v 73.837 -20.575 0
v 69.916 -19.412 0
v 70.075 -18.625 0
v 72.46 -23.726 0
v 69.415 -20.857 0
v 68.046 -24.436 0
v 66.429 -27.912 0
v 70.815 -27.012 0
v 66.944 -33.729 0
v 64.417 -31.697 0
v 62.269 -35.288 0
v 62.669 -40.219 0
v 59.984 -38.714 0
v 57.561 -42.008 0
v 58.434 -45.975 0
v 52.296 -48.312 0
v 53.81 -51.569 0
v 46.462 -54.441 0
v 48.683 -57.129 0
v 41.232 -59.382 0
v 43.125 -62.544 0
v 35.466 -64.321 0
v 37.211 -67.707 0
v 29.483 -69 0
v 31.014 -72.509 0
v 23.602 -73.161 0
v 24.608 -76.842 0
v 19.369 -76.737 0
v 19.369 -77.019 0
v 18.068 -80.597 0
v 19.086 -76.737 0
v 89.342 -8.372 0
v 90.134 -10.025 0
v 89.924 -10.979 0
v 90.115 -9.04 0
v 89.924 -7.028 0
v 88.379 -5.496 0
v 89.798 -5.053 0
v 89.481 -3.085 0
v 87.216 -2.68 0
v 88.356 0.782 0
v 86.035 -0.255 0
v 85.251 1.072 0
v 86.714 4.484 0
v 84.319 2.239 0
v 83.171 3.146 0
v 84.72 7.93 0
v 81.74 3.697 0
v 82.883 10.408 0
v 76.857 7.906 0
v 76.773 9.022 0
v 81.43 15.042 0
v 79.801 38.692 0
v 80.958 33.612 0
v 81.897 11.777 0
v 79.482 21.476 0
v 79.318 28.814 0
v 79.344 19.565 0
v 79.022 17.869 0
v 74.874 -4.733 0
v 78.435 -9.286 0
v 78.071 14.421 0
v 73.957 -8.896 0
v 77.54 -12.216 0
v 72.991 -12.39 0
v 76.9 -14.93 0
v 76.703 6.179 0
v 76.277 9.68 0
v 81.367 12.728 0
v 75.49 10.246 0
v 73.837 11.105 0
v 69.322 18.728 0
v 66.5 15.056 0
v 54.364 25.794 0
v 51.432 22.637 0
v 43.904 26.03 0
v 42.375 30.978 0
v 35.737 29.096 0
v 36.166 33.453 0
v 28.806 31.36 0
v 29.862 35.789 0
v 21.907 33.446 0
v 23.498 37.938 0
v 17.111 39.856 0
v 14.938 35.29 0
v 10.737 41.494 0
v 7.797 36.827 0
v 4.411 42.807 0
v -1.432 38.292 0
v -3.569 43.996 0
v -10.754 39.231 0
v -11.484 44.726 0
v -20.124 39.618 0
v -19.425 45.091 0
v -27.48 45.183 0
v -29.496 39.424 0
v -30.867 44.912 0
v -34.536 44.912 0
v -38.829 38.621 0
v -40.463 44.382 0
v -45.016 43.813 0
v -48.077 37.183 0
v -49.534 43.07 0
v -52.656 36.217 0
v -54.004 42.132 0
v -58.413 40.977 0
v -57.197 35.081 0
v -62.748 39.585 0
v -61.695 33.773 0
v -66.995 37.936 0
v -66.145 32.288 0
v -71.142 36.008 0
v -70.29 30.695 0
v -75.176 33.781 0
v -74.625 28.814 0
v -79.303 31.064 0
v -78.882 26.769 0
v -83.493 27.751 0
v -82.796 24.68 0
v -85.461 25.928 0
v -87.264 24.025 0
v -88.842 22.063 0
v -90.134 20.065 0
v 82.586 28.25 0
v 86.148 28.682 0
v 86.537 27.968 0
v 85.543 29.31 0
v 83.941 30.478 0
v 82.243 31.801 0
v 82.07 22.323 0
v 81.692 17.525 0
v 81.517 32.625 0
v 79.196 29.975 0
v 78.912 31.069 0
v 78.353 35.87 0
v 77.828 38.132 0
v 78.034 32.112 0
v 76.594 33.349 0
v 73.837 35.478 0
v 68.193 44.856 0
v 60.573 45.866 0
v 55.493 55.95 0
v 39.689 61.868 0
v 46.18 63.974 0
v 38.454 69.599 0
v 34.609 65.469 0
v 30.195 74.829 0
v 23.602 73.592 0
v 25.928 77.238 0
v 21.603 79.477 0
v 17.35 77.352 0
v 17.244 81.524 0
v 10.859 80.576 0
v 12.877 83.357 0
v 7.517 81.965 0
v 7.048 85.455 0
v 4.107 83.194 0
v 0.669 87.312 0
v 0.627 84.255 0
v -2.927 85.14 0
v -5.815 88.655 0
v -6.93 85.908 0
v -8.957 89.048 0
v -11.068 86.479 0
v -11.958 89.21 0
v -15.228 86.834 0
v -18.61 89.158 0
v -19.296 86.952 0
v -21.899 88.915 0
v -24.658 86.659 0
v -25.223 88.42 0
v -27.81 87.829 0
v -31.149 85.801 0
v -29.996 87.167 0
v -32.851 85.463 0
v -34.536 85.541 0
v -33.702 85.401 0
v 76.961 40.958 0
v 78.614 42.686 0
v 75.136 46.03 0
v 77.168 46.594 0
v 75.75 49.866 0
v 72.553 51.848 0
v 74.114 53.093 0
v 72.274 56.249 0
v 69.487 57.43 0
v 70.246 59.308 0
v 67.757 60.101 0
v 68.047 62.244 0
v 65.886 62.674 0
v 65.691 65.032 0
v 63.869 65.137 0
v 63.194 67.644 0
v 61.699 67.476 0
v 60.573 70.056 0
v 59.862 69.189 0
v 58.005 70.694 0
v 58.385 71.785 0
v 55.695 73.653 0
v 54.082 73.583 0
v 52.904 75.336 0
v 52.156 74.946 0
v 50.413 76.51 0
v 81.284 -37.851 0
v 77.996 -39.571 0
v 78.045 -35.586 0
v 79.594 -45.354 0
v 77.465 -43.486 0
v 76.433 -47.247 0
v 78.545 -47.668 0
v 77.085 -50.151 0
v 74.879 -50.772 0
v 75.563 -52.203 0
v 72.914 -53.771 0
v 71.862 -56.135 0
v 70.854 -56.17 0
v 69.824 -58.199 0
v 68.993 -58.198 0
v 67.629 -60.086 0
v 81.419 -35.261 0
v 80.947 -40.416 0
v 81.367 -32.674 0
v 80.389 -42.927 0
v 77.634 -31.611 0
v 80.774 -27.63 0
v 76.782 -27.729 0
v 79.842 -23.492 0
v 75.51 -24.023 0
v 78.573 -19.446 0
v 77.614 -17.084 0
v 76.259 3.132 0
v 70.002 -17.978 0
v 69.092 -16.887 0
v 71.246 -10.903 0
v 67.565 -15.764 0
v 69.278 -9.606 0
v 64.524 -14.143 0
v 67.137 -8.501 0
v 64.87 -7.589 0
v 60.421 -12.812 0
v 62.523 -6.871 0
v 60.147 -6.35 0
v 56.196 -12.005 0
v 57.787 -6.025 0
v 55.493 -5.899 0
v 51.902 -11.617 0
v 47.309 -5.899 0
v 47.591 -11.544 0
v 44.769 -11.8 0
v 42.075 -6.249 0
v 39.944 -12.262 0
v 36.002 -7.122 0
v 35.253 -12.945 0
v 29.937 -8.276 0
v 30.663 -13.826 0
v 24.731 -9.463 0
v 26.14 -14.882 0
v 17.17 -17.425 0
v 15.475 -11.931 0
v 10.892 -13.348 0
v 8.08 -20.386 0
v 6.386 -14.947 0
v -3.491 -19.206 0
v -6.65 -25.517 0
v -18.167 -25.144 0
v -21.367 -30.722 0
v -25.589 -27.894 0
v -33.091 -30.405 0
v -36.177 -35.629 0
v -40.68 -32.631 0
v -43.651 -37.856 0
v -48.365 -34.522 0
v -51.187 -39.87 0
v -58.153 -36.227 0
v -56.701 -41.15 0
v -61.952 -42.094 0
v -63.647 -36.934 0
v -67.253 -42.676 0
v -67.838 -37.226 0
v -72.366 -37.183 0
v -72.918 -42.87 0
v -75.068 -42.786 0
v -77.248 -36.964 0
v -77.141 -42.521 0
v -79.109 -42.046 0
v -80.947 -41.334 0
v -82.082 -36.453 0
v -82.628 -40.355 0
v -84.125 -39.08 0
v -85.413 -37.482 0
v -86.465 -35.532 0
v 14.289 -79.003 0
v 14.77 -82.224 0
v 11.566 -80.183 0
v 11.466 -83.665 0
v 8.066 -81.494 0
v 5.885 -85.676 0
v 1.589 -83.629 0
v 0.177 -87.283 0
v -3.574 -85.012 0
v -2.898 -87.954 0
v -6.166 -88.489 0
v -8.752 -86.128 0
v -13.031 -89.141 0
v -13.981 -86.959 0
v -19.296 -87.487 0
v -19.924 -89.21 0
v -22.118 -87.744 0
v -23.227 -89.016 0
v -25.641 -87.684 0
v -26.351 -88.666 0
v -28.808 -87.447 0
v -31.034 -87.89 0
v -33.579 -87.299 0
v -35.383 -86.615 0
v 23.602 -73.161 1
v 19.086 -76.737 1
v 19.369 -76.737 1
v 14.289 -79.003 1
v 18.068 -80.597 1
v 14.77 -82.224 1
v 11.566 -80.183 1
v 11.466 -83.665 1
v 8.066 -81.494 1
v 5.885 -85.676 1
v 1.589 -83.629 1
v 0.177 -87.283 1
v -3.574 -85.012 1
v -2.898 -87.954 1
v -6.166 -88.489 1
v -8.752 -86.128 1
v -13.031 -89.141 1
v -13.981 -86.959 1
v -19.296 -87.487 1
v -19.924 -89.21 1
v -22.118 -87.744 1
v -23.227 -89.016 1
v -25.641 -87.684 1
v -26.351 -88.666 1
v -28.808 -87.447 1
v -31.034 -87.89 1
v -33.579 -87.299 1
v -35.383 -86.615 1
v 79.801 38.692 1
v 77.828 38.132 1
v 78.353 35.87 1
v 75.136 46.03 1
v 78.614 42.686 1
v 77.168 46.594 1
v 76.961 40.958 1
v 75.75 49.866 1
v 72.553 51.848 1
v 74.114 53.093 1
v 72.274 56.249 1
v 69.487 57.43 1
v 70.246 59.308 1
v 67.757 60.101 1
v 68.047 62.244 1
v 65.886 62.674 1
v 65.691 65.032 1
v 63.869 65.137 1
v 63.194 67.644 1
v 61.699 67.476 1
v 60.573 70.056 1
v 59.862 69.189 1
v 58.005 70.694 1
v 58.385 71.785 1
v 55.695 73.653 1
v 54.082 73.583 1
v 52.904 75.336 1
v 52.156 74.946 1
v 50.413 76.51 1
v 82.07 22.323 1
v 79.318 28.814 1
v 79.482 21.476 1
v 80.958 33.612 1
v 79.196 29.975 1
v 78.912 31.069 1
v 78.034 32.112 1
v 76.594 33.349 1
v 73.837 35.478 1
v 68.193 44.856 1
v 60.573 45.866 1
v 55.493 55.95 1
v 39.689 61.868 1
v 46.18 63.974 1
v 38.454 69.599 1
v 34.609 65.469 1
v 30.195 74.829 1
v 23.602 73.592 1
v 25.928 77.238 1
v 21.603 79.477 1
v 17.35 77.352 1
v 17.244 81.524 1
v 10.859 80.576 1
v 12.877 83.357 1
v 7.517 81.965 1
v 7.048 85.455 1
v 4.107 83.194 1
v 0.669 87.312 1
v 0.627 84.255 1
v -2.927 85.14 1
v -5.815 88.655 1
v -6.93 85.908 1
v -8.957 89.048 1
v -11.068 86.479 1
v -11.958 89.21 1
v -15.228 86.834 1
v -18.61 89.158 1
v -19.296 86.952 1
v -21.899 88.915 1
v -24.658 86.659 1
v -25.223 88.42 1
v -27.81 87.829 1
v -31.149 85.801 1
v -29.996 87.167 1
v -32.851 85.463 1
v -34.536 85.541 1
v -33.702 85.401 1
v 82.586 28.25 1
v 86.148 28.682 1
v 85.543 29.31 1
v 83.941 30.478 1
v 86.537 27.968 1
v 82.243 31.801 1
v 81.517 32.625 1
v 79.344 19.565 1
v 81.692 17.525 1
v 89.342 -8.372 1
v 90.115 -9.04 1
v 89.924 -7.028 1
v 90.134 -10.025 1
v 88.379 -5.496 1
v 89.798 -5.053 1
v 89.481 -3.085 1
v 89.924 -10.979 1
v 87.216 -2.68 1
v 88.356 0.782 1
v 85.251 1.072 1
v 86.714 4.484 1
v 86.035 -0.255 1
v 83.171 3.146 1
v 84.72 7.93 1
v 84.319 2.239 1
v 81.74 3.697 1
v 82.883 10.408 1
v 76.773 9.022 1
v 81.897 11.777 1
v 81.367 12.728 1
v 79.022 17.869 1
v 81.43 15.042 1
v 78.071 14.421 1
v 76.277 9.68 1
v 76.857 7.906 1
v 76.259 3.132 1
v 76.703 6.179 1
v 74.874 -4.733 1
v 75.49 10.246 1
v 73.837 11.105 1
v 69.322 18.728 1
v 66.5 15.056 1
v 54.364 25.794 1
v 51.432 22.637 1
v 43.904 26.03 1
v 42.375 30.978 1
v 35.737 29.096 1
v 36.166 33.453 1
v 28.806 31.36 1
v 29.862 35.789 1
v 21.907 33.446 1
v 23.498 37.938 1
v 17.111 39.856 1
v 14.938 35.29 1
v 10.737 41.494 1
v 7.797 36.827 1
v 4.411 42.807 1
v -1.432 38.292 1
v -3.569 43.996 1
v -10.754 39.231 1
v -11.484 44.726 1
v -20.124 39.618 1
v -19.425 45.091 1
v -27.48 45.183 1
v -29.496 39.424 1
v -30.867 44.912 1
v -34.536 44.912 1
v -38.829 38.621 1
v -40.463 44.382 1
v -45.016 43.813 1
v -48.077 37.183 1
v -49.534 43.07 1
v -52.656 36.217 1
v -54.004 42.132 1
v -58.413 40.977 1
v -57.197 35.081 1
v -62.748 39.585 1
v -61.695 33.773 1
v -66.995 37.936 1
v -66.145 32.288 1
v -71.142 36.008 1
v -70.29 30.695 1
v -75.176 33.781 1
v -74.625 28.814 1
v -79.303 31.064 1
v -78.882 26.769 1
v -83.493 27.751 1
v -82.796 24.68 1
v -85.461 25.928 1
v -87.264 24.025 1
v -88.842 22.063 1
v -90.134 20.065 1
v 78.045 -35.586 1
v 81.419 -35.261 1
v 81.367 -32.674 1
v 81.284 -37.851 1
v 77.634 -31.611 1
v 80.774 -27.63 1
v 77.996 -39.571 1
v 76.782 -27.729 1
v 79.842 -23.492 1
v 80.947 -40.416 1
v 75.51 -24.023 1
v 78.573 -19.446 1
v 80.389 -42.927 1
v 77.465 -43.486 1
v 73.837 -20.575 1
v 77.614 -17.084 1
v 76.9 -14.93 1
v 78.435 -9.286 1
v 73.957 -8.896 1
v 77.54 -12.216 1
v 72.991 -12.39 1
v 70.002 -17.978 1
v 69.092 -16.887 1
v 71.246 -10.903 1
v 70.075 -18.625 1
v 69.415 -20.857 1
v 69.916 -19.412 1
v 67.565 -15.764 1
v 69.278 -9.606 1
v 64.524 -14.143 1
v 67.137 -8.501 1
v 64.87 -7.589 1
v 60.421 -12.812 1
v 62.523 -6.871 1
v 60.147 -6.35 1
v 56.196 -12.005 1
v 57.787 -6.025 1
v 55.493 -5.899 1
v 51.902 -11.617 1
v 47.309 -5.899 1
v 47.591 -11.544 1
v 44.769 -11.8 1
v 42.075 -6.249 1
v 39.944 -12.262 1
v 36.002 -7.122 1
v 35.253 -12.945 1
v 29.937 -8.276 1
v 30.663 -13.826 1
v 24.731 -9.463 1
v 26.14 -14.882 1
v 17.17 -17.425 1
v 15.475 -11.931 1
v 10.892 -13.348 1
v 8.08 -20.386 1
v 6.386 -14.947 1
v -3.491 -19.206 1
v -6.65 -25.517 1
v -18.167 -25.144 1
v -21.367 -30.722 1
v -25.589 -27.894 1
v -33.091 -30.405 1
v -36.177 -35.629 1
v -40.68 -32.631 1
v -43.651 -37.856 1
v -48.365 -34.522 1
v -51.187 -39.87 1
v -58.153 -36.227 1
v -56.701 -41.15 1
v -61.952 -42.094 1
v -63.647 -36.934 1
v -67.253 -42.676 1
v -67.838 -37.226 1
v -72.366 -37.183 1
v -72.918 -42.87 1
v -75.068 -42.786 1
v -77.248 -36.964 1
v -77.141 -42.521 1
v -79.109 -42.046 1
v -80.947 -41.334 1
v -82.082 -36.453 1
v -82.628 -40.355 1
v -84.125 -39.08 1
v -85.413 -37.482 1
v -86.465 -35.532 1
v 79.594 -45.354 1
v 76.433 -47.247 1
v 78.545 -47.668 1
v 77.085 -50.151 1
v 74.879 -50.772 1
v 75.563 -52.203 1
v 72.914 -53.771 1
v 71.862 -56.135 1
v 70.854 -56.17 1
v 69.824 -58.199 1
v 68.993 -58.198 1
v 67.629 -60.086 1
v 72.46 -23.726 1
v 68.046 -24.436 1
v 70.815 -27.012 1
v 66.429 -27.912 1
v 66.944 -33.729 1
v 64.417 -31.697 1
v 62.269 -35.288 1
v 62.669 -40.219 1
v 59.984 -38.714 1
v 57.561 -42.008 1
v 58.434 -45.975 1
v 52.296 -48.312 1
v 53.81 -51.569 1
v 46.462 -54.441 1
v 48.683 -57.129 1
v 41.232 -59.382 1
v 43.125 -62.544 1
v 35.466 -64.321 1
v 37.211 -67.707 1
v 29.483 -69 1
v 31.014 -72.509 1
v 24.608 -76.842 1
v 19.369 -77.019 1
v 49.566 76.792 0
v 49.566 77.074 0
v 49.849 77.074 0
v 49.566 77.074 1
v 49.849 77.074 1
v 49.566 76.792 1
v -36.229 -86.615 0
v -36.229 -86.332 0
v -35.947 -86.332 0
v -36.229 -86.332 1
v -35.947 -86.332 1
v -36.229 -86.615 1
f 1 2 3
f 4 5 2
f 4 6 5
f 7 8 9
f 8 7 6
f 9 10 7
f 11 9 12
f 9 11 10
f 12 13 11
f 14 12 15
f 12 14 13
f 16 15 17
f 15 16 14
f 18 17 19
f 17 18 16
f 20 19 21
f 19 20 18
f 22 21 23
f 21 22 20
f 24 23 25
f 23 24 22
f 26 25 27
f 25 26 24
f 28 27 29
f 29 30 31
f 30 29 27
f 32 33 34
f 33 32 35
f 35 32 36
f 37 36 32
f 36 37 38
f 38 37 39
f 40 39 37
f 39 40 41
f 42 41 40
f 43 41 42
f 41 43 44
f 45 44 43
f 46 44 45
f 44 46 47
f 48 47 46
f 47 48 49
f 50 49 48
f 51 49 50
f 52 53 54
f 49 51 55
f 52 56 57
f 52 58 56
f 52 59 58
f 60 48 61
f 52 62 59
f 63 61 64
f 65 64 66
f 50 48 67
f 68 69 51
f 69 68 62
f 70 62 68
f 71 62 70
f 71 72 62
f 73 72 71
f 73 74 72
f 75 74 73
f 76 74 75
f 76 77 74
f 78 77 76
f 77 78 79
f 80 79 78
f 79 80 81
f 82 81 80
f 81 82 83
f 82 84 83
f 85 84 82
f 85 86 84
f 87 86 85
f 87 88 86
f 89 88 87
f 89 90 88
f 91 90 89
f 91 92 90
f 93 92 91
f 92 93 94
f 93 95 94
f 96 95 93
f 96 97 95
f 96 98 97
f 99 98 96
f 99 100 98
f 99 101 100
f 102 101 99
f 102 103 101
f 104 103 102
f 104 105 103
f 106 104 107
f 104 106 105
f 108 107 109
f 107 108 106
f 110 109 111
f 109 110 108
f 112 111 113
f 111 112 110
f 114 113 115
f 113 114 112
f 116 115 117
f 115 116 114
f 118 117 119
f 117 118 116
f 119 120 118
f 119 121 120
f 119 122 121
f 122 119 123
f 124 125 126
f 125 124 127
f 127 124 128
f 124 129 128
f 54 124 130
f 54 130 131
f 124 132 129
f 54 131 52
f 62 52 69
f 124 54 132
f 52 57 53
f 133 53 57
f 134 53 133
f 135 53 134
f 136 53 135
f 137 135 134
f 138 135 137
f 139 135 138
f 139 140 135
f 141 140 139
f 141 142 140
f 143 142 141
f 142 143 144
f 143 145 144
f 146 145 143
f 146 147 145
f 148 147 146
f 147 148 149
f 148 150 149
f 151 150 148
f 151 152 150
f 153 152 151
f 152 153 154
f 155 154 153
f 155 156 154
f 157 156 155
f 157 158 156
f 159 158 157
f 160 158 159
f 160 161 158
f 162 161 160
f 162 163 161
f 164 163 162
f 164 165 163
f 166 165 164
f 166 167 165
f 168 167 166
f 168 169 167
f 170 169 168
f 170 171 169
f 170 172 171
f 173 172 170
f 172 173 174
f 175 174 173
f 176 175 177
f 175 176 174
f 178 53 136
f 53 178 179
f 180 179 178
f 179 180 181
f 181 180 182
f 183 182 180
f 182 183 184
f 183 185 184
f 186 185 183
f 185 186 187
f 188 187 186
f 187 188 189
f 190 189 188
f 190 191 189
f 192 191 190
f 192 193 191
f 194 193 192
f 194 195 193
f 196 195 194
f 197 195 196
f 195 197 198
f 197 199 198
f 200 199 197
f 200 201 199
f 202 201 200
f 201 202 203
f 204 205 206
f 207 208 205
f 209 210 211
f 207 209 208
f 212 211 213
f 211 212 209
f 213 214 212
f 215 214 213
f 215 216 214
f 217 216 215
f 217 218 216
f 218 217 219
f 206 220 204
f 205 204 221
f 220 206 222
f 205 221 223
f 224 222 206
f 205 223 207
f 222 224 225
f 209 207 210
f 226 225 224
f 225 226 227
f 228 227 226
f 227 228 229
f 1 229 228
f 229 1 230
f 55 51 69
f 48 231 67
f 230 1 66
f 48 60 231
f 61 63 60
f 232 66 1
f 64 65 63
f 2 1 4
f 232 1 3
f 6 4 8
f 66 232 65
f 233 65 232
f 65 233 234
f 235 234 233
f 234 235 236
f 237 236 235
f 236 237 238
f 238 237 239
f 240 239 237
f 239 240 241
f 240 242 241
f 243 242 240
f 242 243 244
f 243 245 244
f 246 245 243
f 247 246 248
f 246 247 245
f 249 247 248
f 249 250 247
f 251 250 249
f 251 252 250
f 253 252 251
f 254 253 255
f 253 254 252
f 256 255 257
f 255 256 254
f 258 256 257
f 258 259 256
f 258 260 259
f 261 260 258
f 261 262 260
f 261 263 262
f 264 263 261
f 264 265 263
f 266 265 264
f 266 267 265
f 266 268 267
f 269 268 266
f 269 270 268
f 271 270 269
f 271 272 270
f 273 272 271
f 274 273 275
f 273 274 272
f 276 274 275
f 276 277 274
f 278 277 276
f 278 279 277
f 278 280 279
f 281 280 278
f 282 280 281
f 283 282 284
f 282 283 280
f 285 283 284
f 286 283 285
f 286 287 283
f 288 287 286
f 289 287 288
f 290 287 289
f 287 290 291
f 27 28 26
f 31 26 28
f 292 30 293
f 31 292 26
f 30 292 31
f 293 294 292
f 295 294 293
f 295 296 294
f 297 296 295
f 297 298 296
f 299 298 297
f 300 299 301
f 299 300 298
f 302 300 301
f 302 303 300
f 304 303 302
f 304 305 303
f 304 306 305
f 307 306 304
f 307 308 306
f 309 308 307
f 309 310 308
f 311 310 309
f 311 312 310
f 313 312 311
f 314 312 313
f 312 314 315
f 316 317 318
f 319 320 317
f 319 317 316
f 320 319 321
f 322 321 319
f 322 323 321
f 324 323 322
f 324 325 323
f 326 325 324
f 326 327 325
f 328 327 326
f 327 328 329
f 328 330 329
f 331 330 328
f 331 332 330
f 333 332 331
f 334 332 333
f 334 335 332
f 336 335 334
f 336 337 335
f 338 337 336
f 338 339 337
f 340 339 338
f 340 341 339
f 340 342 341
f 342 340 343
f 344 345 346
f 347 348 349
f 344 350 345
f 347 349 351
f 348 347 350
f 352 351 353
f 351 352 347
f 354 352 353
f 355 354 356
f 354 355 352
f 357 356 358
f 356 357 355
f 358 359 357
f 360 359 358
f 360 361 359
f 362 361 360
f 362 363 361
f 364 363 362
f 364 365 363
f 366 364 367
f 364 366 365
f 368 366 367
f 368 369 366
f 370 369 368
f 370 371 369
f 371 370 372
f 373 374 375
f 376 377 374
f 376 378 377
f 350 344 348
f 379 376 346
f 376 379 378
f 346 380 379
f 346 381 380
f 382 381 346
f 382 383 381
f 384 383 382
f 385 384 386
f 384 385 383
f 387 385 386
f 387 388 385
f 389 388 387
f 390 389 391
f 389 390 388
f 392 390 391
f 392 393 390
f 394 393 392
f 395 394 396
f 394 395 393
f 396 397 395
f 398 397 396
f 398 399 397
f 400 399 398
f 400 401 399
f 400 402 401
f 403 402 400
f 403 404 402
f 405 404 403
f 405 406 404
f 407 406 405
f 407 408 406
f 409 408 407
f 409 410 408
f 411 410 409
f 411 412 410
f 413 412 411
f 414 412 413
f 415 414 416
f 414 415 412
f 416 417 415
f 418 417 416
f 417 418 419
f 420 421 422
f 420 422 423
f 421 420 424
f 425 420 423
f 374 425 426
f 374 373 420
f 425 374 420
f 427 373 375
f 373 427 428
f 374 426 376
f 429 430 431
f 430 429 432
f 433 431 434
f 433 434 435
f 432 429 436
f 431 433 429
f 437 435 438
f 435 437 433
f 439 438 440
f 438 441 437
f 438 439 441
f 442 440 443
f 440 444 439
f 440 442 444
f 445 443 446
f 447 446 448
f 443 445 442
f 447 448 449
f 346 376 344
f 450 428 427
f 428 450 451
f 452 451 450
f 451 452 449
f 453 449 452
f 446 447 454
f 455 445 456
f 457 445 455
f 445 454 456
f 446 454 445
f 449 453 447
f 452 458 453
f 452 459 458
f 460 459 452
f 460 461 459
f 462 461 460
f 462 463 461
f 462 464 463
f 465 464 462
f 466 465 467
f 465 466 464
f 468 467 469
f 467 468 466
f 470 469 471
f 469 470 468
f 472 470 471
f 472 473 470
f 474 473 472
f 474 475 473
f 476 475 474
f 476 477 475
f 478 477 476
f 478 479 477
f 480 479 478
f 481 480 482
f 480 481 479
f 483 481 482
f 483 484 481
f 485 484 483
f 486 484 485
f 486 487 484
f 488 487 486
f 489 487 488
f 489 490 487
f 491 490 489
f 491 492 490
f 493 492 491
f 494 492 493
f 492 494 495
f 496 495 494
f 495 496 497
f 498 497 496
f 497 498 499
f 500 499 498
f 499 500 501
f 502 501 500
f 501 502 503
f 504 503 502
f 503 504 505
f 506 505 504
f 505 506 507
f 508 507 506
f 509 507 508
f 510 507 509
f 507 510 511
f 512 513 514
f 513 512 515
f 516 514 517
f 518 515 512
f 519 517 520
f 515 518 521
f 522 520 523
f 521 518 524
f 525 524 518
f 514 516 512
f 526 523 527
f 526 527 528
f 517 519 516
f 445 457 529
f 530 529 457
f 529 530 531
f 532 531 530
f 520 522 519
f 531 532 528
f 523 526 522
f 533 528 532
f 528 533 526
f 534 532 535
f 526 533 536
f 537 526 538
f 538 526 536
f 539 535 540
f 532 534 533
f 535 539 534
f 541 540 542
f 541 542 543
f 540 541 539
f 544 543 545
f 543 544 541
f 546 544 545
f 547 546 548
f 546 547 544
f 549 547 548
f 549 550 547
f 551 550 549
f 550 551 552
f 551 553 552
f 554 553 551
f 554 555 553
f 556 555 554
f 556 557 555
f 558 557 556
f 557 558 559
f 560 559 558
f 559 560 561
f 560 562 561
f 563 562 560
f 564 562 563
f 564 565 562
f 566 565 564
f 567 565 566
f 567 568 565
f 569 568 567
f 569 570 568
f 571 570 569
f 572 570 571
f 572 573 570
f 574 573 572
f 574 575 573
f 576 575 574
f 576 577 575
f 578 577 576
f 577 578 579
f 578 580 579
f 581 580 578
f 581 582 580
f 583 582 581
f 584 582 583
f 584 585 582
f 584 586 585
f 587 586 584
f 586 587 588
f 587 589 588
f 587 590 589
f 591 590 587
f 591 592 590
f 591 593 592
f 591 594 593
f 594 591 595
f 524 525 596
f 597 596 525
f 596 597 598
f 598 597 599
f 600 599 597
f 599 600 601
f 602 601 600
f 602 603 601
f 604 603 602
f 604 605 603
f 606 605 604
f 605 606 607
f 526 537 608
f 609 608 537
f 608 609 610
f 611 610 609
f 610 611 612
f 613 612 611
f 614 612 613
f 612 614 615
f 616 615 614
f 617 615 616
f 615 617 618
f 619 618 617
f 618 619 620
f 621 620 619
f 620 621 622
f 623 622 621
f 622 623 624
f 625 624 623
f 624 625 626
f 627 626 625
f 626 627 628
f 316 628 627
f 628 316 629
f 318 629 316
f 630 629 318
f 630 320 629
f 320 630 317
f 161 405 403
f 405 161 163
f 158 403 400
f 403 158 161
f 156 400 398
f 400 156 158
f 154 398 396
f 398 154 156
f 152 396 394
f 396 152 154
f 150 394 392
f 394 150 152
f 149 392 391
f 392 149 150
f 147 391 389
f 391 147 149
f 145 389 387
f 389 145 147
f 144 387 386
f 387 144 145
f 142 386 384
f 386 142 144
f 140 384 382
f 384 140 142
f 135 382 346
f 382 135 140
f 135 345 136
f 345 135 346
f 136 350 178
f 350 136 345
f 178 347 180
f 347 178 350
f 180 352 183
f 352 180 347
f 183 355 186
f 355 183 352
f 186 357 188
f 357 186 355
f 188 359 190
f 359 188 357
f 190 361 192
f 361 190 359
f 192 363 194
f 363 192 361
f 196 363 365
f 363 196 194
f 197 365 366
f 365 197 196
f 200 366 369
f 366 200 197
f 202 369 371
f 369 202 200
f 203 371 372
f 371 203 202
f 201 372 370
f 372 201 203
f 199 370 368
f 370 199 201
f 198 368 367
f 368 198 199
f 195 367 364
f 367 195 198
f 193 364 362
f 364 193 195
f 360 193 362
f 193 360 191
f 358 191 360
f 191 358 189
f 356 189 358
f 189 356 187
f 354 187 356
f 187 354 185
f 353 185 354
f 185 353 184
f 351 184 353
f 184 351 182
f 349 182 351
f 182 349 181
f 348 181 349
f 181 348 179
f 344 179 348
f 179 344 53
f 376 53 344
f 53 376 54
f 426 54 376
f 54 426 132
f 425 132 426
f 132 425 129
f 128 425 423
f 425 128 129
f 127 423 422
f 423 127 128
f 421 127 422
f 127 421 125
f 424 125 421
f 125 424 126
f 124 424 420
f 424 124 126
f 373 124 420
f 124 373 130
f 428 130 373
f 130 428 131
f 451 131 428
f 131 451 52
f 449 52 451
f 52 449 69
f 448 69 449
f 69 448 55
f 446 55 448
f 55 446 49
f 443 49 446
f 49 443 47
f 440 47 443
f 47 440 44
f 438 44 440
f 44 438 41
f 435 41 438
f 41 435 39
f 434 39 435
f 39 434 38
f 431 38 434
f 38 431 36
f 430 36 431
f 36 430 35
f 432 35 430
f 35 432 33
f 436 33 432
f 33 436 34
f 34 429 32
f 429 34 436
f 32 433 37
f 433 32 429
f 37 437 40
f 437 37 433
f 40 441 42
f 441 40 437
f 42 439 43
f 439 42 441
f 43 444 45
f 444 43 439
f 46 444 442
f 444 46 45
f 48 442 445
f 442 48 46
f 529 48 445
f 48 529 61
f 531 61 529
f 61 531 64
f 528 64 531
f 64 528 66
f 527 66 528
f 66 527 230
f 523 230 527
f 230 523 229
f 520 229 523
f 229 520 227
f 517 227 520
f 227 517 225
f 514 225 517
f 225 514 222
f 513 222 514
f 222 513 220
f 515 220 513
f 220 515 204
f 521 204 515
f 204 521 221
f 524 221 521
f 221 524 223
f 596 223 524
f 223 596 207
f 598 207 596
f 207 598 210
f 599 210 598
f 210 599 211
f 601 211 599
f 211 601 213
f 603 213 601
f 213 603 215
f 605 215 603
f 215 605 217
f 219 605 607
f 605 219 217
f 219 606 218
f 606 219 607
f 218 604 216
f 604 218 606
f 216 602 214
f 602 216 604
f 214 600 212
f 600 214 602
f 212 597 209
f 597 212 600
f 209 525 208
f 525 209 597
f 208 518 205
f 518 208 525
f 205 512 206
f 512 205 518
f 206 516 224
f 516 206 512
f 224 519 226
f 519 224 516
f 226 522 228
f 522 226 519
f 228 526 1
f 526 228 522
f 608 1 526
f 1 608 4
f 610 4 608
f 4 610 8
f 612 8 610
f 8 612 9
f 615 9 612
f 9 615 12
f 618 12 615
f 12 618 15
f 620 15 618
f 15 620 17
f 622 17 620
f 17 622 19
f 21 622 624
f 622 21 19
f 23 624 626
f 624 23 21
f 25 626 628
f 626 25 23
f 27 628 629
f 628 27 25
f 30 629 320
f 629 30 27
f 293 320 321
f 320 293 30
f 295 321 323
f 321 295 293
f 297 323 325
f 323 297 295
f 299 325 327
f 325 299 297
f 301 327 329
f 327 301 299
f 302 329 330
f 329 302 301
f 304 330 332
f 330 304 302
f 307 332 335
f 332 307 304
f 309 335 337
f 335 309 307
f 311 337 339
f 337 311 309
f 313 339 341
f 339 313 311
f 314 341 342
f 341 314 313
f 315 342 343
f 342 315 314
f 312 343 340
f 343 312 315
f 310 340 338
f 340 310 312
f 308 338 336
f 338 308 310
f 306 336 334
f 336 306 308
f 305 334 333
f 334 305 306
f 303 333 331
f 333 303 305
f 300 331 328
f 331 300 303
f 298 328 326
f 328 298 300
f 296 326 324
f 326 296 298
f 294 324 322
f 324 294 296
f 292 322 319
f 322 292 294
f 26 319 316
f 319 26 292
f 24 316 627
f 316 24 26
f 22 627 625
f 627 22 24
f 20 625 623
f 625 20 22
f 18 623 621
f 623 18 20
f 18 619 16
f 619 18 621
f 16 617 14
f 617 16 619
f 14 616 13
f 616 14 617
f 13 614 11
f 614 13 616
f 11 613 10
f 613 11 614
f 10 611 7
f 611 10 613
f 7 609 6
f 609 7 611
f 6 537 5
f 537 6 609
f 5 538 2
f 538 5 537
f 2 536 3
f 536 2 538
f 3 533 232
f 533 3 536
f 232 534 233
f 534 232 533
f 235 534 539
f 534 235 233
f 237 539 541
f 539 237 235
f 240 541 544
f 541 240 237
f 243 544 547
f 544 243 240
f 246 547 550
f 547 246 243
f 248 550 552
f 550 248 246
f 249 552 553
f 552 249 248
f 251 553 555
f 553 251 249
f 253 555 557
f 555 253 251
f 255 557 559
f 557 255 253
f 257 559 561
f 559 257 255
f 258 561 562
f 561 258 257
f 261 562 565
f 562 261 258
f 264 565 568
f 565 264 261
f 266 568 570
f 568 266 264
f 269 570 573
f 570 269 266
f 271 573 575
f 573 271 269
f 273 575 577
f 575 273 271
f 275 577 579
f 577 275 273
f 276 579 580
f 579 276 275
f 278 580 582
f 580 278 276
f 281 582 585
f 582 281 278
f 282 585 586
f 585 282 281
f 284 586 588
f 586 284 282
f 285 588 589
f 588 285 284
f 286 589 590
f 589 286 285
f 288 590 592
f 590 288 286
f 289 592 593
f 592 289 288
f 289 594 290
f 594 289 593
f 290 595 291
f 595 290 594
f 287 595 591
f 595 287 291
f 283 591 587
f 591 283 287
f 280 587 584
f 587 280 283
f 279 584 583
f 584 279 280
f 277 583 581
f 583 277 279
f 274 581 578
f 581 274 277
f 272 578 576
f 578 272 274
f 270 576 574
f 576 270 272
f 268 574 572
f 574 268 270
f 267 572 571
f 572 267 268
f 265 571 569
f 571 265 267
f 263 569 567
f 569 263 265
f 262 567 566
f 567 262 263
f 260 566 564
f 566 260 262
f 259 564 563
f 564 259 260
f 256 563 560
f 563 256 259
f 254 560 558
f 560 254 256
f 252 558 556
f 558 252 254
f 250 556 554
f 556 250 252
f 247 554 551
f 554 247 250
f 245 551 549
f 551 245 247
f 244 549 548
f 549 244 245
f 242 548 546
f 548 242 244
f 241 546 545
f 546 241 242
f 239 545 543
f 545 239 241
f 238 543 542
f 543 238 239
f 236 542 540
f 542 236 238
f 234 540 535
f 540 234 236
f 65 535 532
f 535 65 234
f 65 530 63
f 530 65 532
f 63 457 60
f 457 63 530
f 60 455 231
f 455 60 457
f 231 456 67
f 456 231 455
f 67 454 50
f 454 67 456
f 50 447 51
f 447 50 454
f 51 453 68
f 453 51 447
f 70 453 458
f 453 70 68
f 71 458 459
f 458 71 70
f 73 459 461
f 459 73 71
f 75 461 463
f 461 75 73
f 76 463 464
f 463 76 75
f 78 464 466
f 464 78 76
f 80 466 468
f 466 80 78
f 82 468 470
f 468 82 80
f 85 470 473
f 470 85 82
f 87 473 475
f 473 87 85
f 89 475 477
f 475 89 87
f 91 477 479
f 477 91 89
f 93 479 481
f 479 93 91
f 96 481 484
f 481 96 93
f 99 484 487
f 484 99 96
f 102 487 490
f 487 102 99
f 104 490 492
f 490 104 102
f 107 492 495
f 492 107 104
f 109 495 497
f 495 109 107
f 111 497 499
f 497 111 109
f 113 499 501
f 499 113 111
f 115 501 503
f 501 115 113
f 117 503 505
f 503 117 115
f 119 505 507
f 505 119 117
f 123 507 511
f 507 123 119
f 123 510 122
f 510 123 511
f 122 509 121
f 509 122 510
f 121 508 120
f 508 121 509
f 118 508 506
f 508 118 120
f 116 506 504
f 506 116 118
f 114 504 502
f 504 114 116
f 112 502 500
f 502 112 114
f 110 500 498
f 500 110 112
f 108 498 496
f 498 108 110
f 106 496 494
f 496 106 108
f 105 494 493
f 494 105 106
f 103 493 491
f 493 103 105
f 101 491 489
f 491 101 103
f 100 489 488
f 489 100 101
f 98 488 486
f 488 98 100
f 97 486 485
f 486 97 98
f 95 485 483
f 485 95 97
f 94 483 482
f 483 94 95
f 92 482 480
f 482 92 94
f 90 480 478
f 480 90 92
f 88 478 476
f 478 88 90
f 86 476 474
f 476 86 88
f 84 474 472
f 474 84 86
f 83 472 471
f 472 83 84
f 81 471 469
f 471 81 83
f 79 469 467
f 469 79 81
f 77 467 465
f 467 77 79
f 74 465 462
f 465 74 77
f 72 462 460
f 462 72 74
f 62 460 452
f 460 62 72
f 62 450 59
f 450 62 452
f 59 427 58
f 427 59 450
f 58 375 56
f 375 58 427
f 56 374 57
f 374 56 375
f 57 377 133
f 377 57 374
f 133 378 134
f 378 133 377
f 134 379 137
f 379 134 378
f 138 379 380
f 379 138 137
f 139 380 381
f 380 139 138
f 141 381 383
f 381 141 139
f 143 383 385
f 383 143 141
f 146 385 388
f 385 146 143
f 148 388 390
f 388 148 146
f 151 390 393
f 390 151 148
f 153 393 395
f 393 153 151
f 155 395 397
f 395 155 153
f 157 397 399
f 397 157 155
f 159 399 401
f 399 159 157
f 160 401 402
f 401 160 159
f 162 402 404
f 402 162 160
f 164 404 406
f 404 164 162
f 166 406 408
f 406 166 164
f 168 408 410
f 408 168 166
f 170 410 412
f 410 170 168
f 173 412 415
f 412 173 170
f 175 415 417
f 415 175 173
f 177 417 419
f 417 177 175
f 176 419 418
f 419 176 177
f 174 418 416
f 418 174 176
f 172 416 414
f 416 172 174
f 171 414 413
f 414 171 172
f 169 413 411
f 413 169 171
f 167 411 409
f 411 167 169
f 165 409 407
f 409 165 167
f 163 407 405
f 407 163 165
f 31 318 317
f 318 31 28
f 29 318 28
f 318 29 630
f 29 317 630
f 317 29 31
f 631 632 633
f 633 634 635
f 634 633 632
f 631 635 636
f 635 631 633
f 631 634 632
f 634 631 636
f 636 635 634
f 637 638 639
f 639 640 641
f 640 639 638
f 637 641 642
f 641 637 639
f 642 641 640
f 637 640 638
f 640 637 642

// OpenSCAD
// Module names are of the form poly_<inkscape-path-id>().  As a result,
// you can associate a polygon in this OpenSCAD program with the corresponding
// SVG element in the Inkscape document by looking for the XML element with
// the attribute id="inkscape-path-id".

// fudge value is used to ensure that subtracted solids are a tad taller
// in the z dimension than the polygon being subtracted from.  This helps
// keep the resulting .stl file manifold.
fudge = 0.1;

module poly_Selection(h)
{
  scale([25.4/90, -25.4/90, 1]) union()
  {
    difference()
    {
       linear_extrude(height=h)
         polygon([[-89.371250,-313.297969],[-77.593594,-315.051719],[-65.942500,-315.912969],[-42.371250,-316.097969],[-31.736289,-315.524258],[-20.602813,-314.131406],[2.371250,-309.372969],[24.974063,-302.792031],[45.628750,-295.357969],[61.101445,-288.866406],[76.545312,-281.611719],[91.871523,-273.676406],[106.991250,-265.142969],[136.255937,-246.611719],[163.628750,-226.677969],[196.628750,-198.247969],[241.628750,-158.937969],[277.628750,-127.097969],[275.770156,-135.113594],[272.697500,-145.127969],[266.228750,-163.097969],[257.078281,-183.712656],[246.215000,-203.492969],[240.083926,-212.955977],[233.456094,-222.073281],[226.308652,-230.799180],[218.618750,-239.087969],[212.109375,-245.156563],[205.528750,-250.489219],[191.628750,-260.727969],[184.806250,-265.556719],[178.628750,-271.097969],[187.455781,-266.939531],[197.345000,-260.975469],[206.876094,-254.355156],[214.628750,-248.227969],[223.917148,-239.684473],[232.762812,-230.428125],[241.110195,-220.551387],[248.903750,-210.146719],[256.087930,-199.306582],[262.607188,-188.123437],[268.405977,-176.689746],[273.428750,-165.097969],[278.555000,-151.247969],[282.758750,-137.097969],[286.858750,-119.097969],[288.839043,-115.600059],[291.411719,-112.680938],[297.430000,-107.991719],[303.105156,-103.855625],[305.248926,-101.627910],[306.628750,-99.097969],[292.628750,-100.097969],[290.798750,-79.097969],[289.458750,-62.097969],[288.531250,-53.297969],[288.308750,-45.097969],[290.187500,-41.728750],[293.678750,-36.879219],[300.188750,-28.097969],[307.253594,-15.889062],[313.072500,-2.771719],[317.059531,10.932500],[318.182988,17.904199],[318.628750,24.902031],[319.303750,32.033281],[319.371250,35.520625],[318.628750,38.902031],[316.564219,29.665469],[313.152500,19.474531],[309.033906,9.497344],[304.848750,0.902031],[302.071250,-3.798438],[298.768750,-7.931719],[294.701250,-11.148125],[289.628750,-13.097969],[277.918750,32.902031],[274.748750,43.284531],[272.478750,52.902031],[275.008750,60.534531],[278.408750,68.902031],[282.905000,83.240781],[286.208750,97.902031],[288.308594,115.775312],[288.491270,124.939824],[288.015000,134.118281],[286.819199,143.207207],[284.843281,152.103125],[282.026660,160.702559],[278.308750,168.902031],[273.135000,177.700000],[267.743750,184.970781],[254.628750,198.902031],[247.406250,206.217031],[239.628750,212.902031],[244.464062,206.212969],[251.056250,199.027031],[258.357187,190.528594],[265.318750,179.902031],[270.824453,167.410098],[274.481875,154.083438],[276.362734,140.213262],[276.538750,126.090781],[275.081641,112.007207],[272.063125,98.253750],[267.554922,85.121621],[261.628750,72.902031],[256.747109,84.069590],[250.918125,95.710000],[237.203750,119.510781],[222.056875,142.507187],[207.048750,162.902031],[190.666914,182.726094],[172.498437,202.424531],[152.805117,221.612969],[131.848750,239.907031],[109.891133,256.922344],[87.194062,272.274531],[64.019336,285.579219],[52.334663,291.343633],[40.628750,296.452031],[20.853750,303.578281],[0.628750,309.272031],[-10.269355,311.647383],[-21.847969,313.544844],[-46.172500,315.854531],[-70.596406,316.097969],[-82.299238,315.412617],[-93.371250,314.172031],[-109.963750,311.422031],[-118.981875,309.326094],[-125.371250,306.902031],[-102.073750,309.850781],[-90.853438,310.691875],[-78.371250,310.902031],[-68.371250,309.992031],[-49.538438,308.121875],[-31.011250,305.178281],[-12.664063,301.224063],[5.628750,296.322031],[28.578750,288.757031],[40.981875,284.112969],[50.628750,279.932031],[83.628750,259.232031],[104.466562,244.487500],[125.666250,227.908281],[146.097187,210.408438],[164.628750,192.902031],[185.299375,171.184688],[203.956250,148.845781],[212.541250,137.177520],[220.636875,125.035000],[228.247812,112.311934],[235.378750,98.902031],[241.107500,86.585781],[245.958750,73.902031],[247.733750,68.783281],[248.295937,65.994687],[248.038750,63.702031],[244.816094,59.834844],[239.402500,55.857031],[228.628750,50.112031],[214.091406,45.396406],[199.120000,42.537031],[183.902969,41.162656],[168.628750,40.902031],[158.628750,41.812031],[141.533828,43.447266],[124.911875,45.867656],[108.647109,48.990234],[92.623750,52.732031],[60.838125,61.741406],[28.628750,72.232031],[-23.564687,90.415000],[-75.711250,108.855781],[-128.187813,126.244688],[-154.667617,134.135410],[-181.371250,141.272031],[-200.910469,145.807344],[-219.515000,149.152031],[-238.297656,151.214219],[-258.371250,151.902031],[-265.989727,151.603926],[-273.332813,150.664688],[-280.306992,148.983184],[-286.818750,146.458281],[-292.774570,142.988848],[-298.080938,138.473750],[-302.644336,132.811855],[-306.371250,125.902031],[-290.840156,129.164062],[-273.712500,130.975781],[-256.414219,131.750625],[-240.371250,131.902031],[-225.521719,130.869219],[-206.055000,128.364531],[-171.371250,122.322031],[-144.143594,115.620938],[-117.252500,107.735781],[-90.670781,98.836250],[-64.371250,89.092031],[-12.371250,68.052031],[22.628750,52.962031],[38.594219,47.297812],[54.832500,42.275781],[87.628750,33.532031],[106.075781,29.322656],[127.565000,25.237031],[149.086094,22.141406],[167.628750,20.902031],[196.628750,20.902031],[204.758145,21.348906],[213.118281,22.498906],[221.539590,24.347344],[229.852500,26.889531],[237.887441,30.120781],[245.474844,34.036406],[252.445137,38.631719],[258.628750,43.902031],[262.053906,31.519844],[265.300000,16.769531],[270.208750,-11.097969],[271.782500,-21.892969],[272.327969,-28.012344],[272.028750,-31.967969],[270.272969,-34.299531],[267.485000,-36.302969],[261.628750,-39.347969],[235.628750,-53.347969],[182.238750,-80.210469],[155.565313,-92.233594],[126.628750,-103.097969],[102.070000,-111.118281],[77.623750,-118.510469],[52.930000,-125.043906],[27.628750,-130.487969],[-5.075723,-135.679492],[-38.105156,-139.008906],[-71.303574,-140.378477],[-104.515000,-139.690469],[-137.583457,-136.847148],[-170.352969,-131.750781],[-186.576877,-128.327163],[-202.667559,-124.303633],[-218.605515,-119.667974],[-234.371250,-114.407969],[-249.060313,-108.761094],[-264.418750,-102.097969],[-279.503438,-94.849844],[-293.371250,-87.447969],[-319.371250,-71.097969],[-314.792930,-78.175391],[-309.202813,-85.126719],[-302.814414,-91.871797],[-295.841250,-98.330469],[-280.994688,-110.067969],[-266.371250,-119.697969],[-252.077832,-127.588496],[-237.383281,-134.419063],[-222.333652,-140.263145],[-206.975000,-145.194219],[-191.353379,-149.285762],[-175.514844,-152.611250],[-159.505449,-155.244160],[-143.371250,-157.257969],[-122.371250,-159.137969],[-109.371250,-159.137969],[-97.371250,-160.097969],[-68.827812,-159.770938],[-40.691250,-158.479219],[-12.644688,-155.891875],[15.628750,-151.677969],[38.043320,-147.026367],[60.629688,-141.221406],[83.260586,-134.427852],[105.808750,-126.810469],[128.146914,-118.534023],[150.147812,-109.763281],[192.628750,-91.397969],[245.628750,-66.357969],[276.628750,-51.097969],[279.998750,-63.316719],[281.140000,-69.324375],[281.628750,-76.097969],[281.048750,-102.097969],[280.617500,-106.209219],[279.608750,-110.087969],[276.497031,-113.781563],[271.395000,-118.164219],[261.628750,-125.707969],[214.628750,-162.517969],[140.628750,-219.217969],[122.628750,-231.977969],[83.628750,-260.757969],[61.478281,-274.083125],[38.477500,-285.504219],[26.635098,-290.426035],[14.552344,-294.782188],[2.219980,-298.542793],[-10.371250,-301.677969],[-24.553906,-304.398125],[-39.217500,-306.421719],[-53.957969,-307.678438],[-68.371250,-308.097969],[-87.371250,-307.057969],[-110.371250,-304.017969],[-116.401250,-302.822969],[-119.416250,-302.603281],[-122.371250,-303.097969],[-106.283750,-308.857969],[-98.540938,-311.206406],[-89.371250,-313.297969]]);
       translate([0, 0, -fudge])
         linear_extrude(height=h+2*fudge)
           polygon([[67.628750,271.902031],[68.628750,272.902031],[68.628750,271.902031],[67.628750,271.902031]]);
    }
    linear_extrude(height=h)
      polygon([[176.628750,-273.097969],[175.628750,-272.097969],[175.628750,-273.097969],[176.628750,-273.097969]]);
    linear_extrude(height=h)
      polygon([[-127.371250,305.902031],[-128.371250,306.902031],[-128.371250,305.902031],[-127.371250,305.902031]]);
  }
}

module basketballc(h)
{

poly_Selection(h);
}

basketballc(1);
